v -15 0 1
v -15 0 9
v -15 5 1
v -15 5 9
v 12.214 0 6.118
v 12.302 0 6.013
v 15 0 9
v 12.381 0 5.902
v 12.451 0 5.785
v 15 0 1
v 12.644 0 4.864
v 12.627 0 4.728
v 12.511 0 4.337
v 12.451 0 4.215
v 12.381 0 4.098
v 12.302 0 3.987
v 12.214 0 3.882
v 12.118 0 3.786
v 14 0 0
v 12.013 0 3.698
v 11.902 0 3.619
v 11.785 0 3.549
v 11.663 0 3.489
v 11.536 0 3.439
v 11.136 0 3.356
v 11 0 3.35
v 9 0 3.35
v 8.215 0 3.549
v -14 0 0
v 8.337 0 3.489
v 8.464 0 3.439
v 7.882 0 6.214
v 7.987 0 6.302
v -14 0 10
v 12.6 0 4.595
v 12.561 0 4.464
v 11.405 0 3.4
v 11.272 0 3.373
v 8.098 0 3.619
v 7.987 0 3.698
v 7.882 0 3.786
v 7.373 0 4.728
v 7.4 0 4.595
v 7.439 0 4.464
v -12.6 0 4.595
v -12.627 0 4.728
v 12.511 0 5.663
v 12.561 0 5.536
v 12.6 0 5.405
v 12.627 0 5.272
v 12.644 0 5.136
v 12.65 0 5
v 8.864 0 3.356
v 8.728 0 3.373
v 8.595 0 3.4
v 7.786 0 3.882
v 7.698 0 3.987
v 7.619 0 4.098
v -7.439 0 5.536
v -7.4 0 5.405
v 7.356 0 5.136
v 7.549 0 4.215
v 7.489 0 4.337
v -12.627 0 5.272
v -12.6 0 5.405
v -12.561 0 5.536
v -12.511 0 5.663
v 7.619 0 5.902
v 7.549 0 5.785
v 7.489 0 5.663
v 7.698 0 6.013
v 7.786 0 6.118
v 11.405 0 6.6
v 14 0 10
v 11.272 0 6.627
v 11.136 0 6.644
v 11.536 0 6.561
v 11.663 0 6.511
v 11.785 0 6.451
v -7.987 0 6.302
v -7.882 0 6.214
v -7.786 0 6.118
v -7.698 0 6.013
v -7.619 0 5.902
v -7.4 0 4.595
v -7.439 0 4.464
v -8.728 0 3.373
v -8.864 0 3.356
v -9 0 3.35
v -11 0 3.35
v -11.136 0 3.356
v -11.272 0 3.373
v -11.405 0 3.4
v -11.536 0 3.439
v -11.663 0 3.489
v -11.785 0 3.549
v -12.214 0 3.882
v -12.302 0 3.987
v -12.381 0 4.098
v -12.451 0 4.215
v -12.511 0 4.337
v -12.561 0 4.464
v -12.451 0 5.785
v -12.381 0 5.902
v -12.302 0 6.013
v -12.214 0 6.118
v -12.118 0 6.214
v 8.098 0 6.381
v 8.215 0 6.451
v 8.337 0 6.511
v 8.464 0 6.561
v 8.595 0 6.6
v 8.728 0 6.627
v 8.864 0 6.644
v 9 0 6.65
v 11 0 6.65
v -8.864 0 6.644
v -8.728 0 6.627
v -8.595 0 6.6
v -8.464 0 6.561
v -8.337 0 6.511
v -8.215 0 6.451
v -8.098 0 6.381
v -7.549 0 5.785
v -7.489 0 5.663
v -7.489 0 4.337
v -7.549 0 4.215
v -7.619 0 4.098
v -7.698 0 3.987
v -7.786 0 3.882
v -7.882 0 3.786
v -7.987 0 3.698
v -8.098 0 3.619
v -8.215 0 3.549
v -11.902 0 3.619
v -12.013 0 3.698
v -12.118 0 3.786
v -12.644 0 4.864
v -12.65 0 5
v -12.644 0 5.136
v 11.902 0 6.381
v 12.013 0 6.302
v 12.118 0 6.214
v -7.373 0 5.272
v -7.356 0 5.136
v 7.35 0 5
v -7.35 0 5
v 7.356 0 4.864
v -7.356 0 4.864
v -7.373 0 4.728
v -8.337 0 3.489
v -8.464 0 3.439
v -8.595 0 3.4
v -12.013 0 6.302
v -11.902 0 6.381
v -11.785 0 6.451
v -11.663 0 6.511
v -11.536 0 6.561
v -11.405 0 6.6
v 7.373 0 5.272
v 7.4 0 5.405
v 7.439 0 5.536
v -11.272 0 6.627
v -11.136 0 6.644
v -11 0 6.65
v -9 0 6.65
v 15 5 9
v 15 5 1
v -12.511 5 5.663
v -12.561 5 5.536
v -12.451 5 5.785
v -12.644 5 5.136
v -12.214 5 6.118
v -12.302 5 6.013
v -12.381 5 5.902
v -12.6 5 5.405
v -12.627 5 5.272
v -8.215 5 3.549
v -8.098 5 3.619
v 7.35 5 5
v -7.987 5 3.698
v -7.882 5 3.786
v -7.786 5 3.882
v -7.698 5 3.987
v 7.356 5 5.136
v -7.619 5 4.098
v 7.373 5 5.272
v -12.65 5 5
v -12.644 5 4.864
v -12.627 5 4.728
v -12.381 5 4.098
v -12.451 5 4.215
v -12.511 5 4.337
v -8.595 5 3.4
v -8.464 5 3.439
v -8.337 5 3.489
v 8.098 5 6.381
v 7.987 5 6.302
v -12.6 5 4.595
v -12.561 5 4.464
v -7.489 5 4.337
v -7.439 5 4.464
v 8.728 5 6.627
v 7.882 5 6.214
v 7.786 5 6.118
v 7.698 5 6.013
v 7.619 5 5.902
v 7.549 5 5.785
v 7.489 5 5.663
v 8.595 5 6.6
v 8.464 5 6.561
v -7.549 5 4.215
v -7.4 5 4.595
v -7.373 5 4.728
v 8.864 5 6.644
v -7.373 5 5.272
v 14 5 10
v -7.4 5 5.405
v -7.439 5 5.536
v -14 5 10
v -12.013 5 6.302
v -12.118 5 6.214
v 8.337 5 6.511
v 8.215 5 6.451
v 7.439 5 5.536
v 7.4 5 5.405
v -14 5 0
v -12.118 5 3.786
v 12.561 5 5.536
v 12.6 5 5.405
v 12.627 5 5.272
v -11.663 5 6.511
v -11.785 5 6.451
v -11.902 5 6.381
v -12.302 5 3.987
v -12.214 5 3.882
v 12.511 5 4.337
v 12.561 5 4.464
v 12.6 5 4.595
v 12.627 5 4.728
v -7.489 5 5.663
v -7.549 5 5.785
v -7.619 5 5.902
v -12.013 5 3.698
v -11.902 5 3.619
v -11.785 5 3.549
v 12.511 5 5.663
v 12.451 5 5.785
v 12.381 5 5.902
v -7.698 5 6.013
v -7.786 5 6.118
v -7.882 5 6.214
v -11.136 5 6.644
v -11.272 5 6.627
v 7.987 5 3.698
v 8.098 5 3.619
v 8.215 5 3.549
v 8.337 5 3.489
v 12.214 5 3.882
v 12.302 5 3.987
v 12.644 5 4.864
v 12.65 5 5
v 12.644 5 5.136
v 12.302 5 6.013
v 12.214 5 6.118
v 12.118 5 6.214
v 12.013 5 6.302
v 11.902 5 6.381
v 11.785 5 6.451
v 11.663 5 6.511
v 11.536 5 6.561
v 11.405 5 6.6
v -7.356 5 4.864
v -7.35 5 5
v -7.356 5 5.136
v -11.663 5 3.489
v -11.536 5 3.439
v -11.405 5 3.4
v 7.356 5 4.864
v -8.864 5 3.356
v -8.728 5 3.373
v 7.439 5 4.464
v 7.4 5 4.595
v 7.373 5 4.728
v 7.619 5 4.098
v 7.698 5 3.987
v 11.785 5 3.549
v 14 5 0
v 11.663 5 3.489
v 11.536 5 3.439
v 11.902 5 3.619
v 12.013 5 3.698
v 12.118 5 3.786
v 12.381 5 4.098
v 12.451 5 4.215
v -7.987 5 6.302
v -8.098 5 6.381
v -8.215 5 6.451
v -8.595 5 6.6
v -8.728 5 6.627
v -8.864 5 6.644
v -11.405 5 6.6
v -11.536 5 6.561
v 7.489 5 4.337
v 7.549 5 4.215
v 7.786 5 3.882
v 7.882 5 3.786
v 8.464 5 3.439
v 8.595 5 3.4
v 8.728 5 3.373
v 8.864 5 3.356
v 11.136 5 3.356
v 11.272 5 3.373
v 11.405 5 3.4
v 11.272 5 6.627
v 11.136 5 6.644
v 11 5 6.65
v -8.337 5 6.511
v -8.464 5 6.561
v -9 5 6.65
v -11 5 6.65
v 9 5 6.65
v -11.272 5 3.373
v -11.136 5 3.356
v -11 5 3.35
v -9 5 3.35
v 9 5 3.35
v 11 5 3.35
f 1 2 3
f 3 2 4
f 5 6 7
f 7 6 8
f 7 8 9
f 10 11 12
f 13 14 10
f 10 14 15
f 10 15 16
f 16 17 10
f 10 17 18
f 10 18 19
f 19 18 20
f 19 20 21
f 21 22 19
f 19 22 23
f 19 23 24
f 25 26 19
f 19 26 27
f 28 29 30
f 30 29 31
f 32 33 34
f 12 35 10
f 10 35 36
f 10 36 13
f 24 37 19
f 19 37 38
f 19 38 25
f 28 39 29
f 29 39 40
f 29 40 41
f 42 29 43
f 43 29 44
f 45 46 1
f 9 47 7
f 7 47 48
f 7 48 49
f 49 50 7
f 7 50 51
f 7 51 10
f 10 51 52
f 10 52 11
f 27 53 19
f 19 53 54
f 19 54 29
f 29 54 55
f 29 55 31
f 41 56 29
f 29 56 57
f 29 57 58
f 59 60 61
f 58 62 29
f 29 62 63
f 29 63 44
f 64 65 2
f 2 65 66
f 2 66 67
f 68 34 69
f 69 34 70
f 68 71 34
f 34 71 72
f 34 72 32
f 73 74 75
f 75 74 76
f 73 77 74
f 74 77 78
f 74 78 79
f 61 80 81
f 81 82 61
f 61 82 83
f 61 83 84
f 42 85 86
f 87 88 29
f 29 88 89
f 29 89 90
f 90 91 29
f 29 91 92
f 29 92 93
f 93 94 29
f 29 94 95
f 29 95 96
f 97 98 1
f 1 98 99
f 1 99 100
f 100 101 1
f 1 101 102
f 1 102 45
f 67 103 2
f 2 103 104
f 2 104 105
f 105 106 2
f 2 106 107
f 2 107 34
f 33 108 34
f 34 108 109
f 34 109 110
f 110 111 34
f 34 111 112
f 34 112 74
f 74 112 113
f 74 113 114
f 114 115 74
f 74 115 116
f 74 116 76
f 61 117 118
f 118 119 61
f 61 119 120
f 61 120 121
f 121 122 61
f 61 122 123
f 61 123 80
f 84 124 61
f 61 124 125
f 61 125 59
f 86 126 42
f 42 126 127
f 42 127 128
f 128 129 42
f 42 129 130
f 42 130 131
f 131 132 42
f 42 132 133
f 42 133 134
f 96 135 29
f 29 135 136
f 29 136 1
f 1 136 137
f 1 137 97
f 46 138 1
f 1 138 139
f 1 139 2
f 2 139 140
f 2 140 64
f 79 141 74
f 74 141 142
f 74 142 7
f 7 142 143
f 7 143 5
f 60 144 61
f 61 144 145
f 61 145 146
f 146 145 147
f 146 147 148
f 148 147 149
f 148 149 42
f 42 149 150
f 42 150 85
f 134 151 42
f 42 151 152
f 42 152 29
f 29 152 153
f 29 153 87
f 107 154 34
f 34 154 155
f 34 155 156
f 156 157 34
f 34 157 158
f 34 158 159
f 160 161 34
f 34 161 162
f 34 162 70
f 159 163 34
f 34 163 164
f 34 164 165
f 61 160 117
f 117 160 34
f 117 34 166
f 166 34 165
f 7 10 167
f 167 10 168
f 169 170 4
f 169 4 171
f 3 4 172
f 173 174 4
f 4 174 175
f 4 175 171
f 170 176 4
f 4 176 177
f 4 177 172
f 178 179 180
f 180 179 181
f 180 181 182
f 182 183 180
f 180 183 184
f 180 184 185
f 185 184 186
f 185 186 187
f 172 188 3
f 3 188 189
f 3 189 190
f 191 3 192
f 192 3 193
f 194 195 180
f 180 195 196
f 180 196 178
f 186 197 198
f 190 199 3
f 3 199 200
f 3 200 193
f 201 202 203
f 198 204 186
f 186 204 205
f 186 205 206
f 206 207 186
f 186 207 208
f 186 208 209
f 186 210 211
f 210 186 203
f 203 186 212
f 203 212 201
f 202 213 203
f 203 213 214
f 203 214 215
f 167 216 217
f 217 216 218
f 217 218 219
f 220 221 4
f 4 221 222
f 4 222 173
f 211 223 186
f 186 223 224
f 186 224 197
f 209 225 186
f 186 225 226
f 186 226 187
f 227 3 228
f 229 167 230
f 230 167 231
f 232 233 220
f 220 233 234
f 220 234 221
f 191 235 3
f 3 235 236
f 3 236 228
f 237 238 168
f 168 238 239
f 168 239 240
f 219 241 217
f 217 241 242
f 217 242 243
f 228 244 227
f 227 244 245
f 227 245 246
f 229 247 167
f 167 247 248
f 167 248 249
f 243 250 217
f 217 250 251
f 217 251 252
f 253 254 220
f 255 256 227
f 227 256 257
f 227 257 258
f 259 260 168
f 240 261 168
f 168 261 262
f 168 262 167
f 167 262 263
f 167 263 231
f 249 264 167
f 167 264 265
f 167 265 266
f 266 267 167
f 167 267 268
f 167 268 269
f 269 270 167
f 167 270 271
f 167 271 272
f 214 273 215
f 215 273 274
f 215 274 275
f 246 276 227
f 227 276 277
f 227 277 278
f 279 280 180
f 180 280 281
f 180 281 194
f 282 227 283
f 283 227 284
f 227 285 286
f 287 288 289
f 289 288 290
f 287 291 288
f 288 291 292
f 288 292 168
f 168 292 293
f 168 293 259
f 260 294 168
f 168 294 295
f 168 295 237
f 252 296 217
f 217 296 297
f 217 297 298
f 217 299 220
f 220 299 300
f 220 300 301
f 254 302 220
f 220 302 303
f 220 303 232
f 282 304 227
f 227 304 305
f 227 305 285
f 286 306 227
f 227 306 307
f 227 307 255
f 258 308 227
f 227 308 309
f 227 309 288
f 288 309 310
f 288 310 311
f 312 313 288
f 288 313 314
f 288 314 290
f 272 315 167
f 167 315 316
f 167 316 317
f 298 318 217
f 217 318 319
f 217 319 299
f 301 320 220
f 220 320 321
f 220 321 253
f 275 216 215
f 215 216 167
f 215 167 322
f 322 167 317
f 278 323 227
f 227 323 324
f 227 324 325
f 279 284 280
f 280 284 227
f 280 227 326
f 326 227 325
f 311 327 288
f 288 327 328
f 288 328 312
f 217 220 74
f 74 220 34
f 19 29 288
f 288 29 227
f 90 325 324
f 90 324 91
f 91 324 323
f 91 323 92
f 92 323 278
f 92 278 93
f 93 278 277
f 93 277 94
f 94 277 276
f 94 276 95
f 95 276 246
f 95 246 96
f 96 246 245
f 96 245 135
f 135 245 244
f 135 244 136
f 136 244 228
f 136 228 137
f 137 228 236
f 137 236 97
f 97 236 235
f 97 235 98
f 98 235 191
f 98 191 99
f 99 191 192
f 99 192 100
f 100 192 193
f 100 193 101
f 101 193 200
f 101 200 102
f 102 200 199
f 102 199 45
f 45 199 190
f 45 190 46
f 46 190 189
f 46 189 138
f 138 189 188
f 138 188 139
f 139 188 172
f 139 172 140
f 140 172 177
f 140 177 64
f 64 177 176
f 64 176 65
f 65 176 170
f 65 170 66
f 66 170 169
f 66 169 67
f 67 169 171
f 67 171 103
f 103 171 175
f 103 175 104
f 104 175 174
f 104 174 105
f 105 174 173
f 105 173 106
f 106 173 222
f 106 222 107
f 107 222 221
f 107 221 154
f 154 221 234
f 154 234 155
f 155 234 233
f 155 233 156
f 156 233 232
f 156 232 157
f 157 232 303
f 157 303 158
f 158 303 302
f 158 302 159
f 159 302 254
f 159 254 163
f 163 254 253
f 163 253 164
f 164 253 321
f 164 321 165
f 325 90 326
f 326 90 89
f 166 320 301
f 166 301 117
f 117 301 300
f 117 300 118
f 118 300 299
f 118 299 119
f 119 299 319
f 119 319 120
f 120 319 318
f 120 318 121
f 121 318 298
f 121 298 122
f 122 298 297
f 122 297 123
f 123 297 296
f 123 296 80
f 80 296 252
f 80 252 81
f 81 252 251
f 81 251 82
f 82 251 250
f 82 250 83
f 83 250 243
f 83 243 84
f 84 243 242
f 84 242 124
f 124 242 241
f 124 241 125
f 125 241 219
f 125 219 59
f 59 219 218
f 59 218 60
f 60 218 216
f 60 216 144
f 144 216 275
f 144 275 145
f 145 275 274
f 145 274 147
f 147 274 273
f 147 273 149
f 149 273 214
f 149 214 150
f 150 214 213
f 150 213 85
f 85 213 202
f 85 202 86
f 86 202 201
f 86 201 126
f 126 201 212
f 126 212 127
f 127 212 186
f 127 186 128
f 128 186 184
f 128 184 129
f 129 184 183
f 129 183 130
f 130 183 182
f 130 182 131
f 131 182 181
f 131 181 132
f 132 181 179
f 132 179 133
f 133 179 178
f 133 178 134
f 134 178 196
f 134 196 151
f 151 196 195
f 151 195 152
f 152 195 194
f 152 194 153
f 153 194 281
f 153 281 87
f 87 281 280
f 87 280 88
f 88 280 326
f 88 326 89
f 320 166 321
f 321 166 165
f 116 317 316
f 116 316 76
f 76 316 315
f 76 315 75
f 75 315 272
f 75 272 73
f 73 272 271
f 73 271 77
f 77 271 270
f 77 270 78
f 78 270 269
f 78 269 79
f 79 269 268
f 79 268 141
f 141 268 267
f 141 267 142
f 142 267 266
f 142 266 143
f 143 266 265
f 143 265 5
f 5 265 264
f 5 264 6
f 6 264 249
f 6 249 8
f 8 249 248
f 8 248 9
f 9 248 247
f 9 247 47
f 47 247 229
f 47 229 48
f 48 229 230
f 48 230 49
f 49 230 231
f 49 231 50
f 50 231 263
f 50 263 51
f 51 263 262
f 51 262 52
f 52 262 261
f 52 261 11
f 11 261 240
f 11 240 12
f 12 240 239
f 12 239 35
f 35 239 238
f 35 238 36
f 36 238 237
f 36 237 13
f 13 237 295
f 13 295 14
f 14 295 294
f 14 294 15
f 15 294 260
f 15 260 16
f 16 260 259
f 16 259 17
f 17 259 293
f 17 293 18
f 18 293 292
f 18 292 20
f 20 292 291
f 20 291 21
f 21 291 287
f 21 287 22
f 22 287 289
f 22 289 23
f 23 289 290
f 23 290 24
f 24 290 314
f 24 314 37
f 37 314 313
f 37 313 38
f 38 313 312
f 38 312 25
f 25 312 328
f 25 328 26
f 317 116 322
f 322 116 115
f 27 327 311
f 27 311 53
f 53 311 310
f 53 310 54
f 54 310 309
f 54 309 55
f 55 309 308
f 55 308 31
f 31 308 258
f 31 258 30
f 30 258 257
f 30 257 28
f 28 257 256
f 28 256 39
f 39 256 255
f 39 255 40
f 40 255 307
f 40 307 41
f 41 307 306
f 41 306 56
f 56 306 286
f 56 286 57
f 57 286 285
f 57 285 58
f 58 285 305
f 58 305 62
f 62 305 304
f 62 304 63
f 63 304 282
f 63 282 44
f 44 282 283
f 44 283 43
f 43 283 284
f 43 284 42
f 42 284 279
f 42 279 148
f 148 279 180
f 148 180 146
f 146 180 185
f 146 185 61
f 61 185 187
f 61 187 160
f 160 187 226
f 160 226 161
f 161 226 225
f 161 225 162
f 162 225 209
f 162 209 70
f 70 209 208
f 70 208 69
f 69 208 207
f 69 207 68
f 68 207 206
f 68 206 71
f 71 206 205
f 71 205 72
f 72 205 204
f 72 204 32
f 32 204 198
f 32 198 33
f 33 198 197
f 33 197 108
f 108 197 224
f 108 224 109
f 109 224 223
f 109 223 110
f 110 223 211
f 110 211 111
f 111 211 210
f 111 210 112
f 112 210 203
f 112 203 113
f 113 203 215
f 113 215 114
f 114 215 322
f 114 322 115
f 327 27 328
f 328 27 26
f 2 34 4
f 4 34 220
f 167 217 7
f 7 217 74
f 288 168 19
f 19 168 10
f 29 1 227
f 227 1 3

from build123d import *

# Parameters (mm, degrees)
SCHIZZO1_W                   = 30
SCHIZZO1_H                   = 5
ESTRUSIONE_ESTRUSIONE1_DEPTH = 10
TAGLIO_ESTRUSIONE1_DEPTH     = 10
SMUSSO1_SIZE                 = 1
SMUSSO2_SIZE                 = 1


with BuildPart() as part:
    # Schizzo1 → Estrusione-Estrusione1 (new body)
    with BuildSketch(Plane.XY):
        with Locations((0, 2.5)):
            Rectangle(SCHIZZO1_W, SCHIZZO1_H)
    extrude(amount=ESTRUSIONE_ESTRUSIONE1_DEPTH)

    # Schizzo2 → Taglio-Estrusione1 (cut)
    with BuildSketch(Plane(origin=(0, 5, 0), x_dir=(1, 0, 0), z_dir=(0, 1, 0))):
        with BuildLine():
            Line((-11, -3.35), (-9, -3.35))
            ThreePointArc((-9, -3.35), (-7.35, -5), (-9, -6.65))
            Line((-9, -6.65), (-11, -6.65))
            ThreePointArc((-11, -6.65), (-12.65, -5), (-11, -3.35))
        make_face()
        with BuildLine():
            Line((11, -3.35), (9, -3.35))
            ThreePointArc((9, -3.35), (7.35, -5), (9, -6.65))
            Line((9, -6.65), (11, -6.65))
            ThreePointArc((11, -6.65), (12.65, -5), (11, -3.35))
        make_face()
    extrude(amount=-TAGLIO_ESTRUSIONE1_DEPTH, mode=Mode.SUBTRACT)

    # Smusso1
    smusso1_edges = [part.edges().sort_by_distance(p)[0] for p in [
        (-15, 2.5, 10),
    ]]
    chamfer(smusso1_edges, length=SMUSSO1_SIZE)

    # Smusso2
    smusso2_edges = [part.edges().sort_by_distance(p)[0] for p in [
        (15, 2.5, 10),
        (15, 2.5, 0),
        (-15, 2.5, 0),
    ]]
    chamfer(smusso2_edges, length=SMUSSO2_SIZE)


solid = part.part
